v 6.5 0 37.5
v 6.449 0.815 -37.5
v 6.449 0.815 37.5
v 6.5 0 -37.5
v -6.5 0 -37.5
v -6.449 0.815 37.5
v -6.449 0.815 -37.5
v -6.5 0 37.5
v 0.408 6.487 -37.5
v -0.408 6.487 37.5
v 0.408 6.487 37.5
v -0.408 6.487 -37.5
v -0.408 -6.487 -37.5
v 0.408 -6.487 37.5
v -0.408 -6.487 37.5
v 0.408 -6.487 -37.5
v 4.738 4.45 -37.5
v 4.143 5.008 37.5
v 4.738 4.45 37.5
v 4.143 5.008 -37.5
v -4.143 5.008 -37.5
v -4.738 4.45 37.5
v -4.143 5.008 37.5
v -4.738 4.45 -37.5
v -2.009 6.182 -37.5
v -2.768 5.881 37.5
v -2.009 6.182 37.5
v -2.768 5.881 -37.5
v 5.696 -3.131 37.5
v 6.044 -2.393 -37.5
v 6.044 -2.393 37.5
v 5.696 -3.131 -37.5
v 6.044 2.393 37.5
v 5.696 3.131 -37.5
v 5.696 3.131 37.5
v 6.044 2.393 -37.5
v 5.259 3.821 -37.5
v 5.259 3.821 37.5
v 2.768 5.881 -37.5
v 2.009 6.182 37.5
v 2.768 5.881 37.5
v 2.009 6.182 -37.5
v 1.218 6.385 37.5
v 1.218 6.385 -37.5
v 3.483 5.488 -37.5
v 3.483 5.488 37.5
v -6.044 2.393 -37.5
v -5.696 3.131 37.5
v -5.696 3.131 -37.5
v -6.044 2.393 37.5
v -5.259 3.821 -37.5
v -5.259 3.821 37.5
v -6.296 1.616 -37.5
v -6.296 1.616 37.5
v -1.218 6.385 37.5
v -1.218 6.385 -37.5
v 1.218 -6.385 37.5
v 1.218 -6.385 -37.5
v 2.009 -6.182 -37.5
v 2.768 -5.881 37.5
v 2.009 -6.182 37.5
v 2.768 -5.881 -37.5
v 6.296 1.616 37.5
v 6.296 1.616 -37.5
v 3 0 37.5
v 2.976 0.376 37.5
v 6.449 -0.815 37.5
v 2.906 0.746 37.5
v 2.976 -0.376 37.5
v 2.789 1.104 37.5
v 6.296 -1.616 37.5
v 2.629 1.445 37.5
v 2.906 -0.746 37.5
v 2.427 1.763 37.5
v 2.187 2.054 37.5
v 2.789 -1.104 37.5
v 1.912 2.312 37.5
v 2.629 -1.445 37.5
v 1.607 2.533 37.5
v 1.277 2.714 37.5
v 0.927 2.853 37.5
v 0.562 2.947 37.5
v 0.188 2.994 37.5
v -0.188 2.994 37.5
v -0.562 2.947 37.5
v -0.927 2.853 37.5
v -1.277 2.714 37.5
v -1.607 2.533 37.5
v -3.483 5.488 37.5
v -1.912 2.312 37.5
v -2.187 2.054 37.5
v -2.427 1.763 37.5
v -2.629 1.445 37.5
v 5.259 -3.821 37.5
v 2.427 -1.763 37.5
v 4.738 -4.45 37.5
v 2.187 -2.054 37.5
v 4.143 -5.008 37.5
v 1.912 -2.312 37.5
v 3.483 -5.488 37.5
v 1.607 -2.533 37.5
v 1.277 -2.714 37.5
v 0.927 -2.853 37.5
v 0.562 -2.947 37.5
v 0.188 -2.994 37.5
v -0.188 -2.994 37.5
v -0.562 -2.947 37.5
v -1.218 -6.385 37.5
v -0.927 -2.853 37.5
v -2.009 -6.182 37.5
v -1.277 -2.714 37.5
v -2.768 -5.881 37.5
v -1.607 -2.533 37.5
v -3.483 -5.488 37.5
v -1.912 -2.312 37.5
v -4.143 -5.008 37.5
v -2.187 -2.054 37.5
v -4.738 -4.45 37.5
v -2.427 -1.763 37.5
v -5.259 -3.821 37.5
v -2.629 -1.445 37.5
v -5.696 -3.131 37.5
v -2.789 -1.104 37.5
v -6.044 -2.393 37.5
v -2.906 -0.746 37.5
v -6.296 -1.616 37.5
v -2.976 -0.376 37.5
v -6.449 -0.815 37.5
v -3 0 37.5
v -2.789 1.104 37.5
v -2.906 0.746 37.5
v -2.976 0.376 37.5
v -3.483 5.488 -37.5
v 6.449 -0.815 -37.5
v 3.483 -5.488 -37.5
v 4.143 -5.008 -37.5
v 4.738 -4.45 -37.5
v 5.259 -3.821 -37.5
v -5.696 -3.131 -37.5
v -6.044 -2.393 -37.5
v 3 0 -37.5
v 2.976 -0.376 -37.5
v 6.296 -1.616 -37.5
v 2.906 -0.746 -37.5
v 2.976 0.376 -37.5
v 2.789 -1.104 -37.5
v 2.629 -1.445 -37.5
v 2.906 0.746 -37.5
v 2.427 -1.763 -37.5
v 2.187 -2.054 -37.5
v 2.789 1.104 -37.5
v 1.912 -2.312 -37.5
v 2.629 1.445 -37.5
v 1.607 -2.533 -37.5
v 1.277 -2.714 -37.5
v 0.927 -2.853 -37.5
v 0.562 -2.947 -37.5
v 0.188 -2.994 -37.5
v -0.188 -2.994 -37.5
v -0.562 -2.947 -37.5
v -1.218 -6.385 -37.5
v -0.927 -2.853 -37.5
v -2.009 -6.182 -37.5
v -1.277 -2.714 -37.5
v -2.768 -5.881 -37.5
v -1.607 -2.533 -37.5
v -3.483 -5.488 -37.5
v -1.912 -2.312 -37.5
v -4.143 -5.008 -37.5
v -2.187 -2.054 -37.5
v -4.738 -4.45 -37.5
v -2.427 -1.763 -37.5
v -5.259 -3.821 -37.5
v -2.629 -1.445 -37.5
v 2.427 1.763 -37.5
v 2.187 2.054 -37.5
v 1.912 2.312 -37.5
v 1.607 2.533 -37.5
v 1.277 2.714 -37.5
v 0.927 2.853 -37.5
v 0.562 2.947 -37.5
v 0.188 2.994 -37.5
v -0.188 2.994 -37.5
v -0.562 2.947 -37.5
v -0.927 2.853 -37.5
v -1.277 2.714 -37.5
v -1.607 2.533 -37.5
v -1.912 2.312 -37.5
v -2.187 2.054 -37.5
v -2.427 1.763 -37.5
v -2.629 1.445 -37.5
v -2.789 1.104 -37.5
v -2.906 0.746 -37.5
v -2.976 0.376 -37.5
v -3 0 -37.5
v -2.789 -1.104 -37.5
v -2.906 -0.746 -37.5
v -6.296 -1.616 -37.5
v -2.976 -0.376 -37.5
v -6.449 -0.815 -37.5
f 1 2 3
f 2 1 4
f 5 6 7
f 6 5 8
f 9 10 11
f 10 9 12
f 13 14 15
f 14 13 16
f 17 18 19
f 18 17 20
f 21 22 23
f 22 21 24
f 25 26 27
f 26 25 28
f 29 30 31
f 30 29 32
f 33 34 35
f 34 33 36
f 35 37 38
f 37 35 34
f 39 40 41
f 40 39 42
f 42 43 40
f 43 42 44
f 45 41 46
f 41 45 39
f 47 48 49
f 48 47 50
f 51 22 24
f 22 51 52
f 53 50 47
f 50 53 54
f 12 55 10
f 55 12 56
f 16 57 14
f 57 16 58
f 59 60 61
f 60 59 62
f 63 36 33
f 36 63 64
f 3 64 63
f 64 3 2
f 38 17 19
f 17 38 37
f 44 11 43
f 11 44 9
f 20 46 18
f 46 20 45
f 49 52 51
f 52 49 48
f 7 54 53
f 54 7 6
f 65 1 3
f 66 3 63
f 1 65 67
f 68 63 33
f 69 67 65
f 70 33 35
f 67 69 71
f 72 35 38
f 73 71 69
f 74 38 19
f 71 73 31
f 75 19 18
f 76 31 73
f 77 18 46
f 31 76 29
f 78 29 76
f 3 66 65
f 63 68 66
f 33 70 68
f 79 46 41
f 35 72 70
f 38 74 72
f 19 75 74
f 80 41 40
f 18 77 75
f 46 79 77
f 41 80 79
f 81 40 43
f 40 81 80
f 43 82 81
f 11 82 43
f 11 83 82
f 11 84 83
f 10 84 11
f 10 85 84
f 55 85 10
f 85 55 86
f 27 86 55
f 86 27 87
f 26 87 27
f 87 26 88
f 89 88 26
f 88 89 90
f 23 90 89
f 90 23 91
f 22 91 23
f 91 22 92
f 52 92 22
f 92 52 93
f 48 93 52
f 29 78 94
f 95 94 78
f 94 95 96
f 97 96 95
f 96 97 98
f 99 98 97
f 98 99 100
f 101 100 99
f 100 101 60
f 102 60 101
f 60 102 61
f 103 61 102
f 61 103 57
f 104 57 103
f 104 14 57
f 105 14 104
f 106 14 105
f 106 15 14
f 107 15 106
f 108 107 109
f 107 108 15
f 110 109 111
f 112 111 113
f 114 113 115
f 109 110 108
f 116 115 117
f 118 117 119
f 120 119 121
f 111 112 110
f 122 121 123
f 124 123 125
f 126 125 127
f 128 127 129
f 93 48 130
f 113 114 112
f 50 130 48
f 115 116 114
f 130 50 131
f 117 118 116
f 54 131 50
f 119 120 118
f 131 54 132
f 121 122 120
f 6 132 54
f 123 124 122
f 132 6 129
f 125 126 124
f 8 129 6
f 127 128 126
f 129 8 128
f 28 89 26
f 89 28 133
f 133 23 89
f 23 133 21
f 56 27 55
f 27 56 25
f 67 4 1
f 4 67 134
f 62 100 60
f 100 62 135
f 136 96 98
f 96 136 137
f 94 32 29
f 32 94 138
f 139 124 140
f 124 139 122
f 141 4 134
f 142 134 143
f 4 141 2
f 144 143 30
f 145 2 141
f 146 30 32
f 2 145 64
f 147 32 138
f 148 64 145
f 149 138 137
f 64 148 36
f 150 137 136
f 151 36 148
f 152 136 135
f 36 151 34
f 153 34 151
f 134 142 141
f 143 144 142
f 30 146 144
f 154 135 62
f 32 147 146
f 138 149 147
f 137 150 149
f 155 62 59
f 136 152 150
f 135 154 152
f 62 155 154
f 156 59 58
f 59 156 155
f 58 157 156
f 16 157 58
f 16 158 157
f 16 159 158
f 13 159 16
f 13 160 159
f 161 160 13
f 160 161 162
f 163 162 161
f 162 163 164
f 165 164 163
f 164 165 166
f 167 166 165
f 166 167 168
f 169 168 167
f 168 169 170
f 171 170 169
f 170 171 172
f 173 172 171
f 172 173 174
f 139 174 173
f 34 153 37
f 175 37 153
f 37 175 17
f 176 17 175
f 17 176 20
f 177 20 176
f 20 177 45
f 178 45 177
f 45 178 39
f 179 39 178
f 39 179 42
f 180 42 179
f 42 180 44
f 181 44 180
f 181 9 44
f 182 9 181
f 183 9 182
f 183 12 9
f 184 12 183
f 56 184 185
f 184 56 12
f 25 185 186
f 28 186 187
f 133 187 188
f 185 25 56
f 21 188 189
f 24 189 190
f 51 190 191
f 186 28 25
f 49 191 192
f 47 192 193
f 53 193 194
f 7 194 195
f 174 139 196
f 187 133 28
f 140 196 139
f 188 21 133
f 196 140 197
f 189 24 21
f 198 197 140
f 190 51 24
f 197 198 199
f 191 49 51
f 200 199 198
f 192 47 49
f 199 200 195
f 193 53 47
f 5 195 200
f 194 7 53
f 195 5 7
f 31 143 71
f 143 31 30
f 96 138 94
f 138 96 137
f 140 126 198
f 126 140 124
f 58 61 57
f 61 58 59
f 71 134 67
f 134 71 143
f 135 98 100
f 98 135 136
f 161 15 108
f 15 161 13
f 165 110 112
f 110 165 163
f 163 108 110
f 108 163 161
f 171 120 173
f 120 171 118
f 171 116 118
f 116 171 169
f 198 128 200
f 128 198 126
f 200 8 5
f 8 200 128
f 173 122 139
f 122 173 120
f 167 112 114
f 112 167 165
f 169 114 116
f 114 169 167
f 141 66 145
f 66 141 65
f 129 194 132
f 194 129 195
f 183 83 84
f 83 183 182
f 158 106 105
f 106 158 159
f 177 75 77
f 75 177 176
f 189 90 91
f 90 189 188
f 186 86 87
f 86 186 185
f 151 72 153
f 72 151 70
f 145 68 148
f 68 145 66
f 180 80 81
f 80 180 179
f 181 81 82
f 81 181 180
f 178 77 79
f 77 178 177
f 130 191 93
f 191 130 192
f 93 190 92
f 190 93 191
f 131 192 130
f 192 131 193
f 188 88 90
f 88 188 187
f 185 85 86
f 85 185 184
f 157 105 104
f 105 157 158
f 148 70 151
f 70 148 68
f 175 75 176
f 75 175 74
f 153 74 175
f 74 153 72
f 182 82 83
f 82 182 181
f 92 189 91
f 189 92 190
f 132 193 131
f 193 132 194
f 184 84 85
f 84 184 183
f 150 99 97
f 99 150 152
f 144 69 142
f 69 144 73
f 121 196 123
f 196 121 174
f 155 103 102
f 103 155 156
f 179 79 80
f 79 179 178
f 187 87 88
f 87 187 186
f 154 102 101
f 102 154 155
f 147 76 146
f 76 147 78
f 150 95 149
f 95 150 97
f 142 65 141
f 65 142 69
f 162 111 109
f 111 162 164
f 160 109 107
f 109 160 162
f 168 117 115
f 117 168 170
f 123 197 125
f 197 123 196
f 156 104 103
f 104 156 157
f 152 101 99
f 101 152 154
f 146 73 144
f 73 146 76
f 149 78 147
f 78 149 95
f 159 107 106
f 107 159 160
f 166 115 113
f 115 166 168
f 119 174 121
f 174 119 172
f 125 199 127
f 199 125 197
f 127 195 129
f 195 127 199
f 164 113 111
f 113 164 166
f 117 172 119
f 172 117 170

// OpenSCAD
$fn = 50;


difference() {
	union() {
		translate(v = [0, 0, -37.5000000000]) {
			cylinder(h = 75, r = 6.5000000000);
		}
	}
	union() {
		translate(v = [0, 0, -100.0000000000]) {
			cylinder(h = 200, r = 3);
		}
	}
}
